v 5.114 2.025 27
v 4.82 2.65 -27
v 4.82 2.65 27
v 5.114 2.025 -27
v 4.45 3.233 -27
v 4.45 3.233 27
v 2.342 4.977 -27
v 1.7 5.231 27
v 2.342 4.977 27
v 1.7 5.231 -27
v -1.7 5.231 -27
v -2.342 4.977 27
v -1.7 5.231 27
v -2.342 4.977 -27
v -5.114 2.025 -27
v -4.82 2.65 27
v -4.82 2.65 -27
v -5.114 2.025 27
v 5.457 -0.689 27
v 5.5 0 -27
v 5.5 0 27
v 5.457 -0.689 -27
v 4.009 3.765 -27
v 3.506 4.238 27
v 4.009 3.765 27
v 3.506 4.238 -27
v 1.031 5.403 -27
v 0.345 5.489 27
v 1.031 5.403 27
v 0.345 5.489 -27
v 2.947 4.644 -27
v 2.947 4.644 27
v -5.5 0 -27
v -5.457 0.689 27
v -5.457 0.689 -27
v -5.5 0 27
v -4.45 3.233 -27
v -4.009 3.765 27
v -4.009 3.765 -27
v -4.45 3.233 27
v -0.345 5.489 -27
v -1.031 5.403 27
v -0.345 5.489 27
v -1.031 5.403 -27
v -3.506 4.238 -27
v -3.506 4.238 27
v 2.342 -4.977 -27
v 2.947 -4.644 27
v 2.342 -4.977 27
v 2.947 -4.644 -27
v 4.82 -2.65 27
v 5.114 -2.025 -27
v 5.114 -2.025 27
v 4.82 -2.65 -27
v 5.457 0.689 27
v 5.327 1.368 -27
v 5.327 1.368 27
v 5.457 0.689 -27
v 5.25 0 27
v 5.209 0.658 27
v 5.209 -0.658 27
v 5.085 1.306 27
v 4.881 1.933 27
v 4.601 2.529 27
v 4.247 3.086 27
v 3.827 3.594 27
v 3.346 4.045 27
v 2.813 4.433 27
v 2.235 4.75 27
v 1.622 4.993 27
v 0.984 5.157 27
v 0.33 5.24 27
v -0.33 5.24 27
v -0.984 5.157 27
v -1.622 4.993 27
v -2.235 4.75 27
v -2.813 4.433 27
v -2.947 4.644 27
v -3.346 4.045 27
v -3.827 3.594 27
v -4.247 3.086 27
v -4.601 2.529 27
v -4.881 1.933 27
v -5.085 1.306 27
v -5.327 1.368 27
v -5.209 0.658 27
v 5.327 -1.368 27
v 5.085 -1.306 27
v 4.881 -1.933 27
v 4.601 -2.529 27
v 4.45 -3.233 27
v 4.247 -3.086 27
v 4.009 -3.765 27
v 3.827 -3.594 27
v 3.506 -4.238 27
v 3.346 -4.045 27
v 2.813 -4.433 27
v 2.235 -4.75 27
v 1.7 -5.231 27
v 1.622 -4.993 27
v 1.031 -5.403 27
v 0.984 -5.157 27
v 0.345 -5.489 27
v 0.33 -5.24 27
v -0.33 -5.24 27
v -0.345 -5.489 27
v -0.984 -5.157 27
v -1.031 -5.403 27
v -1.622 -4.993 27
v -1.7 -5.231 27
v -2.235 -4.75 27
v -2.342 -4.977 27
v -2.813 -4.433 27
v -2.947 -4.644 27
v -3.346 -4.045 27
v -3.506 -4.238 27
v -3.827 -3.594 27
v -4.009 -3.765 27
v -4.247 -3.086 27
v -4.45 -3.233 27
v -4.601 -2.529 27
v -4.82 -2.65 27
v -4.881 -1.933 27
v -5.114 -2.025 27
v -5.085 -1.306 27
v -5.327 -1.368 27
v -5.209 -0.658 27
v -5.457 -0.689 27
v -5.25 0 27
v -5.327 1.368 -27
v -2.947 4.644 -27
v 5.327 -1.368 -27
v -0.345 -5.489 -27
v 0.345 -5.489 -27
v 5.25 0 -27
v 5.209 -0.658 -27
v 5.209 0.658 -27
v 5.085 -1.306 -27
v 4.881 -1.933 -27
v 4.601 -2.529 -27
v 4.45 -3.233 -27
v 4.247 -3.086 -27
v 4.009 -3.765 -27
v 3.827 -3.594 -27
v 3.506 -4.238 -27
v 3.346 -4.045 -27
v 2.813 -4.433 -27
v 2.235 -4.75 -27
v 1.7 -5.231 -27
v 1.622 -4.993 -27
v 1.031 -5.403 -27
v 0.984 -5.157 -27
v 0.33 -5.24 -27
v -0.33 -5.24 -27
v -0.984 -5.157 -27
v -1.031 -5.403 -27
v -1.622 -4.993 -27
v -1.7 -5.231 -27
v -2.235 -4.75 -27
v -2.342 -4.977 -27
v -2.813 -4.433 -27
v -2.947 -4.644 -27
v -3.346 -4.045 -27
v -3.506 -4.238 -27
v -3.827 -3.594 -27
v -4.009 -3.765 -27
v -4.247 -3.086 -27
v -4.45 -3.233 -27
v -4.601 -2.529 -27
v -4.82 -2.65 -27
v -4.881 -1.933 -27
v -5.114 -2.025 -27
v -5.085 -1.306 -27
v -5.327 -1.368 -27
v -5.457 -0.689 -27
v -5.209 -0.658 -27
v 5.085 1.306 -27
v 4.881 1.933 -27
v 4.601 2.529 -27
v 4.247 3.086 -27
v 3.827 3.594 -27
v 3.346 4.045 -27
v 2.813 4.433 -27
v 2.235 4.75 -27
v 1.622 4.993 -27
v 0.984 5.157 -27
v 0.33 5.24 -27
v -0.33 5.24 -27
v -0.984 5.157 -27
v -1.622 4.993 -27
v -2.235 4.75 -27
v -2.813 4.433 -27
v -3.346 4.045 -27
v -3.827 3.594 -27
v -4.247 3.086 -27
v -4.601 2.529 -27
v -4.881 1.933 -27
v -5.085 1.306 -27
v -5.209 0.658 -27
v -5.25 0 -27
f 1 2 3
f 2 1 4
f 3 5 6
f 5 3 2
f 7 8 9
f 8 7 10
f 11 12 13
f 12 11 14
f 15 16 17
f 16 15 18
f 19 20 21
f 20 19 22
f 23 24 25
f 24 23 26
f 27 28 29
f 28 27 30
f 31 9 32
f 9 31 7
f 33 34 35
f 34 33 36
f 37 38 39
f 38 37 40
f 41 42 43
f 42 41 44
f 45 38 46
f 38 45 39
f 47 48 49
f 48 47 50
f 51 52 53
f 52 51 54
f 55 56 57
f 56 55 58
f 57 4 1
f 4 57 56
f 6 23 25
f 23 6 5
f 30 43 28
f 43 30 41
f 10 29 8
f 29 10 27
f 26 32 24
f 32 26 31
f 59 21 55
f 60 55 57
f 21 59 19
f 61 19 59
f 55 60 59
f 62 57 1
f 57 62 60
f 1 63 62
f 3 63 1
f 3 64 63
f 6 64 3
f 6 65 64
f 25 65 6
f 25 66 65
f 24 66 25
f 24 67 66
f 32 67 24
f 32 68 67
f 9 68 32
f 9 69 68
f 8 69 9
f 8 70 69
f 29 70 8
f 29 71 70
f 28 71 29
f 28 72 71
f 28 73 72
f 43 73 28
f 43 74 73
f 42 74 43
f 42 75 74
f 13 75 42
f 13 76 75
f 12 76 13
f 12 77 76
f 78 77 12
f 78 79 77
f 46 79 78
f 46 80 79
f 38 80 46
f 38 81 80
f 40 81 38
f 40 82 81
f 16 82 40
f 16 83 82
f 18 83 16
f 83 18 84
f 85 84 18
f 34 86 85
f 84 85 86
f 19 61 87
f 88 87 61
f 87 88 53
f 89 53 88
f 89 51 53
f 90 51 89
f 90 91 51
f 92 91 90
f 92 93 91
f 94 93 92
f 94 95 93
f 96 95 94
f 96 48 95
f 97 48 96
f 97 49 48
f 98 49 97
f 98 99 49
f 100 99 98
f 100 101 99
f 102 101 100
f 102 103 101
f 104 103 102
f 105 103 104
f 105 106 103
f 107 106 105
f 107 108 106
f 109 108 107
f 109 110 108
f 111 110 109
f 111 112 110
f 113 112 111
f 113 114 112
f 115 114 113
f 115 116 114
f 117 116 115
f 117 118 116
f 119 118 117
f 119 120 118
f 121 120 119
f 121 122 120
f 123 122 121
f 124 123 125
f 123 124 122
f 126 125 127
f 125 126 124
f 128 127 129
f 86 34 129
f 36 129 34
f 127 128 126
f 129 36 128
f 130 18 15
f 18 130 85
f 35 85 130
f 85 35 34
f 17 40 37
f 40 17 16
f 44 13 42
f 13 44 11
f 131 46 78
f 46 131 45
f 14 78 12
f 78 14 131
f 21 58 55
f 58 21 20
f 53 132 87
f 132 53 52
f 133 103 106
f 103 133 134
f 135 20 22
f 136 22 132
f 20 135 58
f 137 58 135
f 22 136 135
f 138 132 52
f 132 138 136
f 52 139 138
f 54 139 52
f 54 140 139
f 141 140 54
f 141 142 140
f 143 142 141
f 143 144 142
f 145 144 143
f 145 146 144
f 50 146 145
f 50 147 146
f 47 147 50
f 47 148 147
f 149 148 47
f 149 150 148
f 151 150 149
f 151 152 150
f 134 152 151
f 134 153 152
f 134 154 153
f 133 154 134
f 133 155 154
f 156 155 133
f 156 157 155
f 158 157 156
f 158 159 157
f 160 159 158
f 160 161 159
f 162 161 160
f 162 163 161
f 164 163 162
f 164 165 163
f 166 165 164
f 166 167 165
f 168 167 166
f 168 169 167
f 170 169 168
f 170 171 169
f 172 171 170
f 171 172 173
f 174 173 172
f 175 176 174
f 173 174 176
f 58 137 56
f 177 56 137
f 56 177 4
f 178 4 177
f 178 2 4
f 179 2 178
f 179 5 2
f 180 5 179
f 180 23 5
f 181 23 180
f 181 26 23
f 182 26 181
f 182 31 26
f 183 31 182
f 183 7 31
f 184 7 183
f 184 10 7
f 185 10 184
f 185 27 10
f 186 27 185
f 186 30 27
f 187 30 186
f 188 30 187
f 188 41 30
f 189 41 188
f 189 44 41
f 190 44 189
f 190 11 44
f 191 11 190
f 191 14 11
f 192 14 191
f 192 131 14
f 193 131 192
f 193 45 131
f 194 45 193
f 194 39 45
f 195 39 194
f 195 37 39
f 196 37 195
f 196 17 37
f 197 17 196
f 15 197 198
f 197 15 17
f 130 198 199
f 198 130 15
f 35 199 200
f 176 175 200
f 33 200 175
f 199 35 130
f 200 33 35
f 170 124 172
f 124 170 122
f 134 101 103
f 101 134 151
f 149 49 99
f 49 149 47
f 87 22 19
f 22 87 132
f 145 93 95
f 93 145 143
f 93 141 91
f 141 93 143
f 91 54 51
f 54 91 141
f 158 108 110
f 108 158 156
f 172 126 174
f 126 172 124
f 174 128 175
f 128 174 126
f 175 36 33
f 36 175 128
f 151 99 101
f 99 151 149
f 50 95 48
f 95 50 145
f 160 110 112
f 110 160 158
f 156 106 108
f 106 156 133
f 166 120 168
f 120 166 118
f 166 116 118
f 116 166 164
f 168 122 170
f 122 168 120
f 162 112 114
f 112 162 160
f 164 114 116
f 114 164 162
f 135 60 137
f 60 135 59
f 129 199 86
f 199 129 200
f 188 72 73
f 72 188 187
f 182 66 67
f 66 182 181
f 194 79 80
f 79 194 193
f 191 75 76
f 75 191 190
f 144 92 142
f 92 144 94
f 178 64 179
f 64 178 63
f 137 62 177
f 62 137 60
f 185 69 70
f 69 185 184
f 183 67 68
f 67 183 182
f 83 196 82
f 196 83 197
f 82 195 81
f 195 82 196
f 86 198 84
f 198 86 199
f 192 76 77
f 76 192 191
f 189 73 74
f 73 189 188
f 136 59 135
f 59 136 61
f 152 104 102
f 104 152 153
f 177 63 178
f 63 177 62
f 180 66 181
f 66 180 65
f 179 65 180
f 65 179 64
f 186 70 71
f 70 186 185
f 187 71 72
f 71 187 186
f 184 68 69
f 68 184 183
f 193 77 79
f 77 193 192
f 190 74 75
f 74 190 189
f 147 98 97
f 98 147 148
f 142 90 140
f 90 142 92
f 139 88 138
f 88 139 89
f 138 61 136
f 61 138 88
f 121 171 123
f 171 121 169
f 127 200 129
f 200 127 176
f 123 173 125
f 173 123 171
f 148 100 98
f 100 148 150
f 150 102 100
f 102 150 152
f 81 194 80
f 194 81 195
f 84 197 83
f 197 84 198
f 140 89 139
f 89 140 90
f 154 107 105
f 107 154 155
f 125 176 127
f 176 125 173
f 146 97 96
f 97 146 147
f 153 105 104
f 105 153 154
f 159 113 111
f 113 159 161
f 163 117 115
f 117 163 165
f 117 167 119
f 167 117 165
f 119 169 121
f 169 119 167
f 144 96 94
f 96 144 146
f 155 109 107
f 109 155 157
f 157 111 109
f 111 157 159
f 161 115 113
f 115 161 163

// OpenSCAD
$fn = 50;


difference() {
	union() {
		translate(v = [0, 0, -27.0000000000]) {
			cylinder(h = 54, r = 5.5000000000);
		}
	}
	union() {
		translate(v = [0, 0, -100.0000000000]) {
			cylinder(h = 200, r = 5.2500000000);
		}
	}
}
